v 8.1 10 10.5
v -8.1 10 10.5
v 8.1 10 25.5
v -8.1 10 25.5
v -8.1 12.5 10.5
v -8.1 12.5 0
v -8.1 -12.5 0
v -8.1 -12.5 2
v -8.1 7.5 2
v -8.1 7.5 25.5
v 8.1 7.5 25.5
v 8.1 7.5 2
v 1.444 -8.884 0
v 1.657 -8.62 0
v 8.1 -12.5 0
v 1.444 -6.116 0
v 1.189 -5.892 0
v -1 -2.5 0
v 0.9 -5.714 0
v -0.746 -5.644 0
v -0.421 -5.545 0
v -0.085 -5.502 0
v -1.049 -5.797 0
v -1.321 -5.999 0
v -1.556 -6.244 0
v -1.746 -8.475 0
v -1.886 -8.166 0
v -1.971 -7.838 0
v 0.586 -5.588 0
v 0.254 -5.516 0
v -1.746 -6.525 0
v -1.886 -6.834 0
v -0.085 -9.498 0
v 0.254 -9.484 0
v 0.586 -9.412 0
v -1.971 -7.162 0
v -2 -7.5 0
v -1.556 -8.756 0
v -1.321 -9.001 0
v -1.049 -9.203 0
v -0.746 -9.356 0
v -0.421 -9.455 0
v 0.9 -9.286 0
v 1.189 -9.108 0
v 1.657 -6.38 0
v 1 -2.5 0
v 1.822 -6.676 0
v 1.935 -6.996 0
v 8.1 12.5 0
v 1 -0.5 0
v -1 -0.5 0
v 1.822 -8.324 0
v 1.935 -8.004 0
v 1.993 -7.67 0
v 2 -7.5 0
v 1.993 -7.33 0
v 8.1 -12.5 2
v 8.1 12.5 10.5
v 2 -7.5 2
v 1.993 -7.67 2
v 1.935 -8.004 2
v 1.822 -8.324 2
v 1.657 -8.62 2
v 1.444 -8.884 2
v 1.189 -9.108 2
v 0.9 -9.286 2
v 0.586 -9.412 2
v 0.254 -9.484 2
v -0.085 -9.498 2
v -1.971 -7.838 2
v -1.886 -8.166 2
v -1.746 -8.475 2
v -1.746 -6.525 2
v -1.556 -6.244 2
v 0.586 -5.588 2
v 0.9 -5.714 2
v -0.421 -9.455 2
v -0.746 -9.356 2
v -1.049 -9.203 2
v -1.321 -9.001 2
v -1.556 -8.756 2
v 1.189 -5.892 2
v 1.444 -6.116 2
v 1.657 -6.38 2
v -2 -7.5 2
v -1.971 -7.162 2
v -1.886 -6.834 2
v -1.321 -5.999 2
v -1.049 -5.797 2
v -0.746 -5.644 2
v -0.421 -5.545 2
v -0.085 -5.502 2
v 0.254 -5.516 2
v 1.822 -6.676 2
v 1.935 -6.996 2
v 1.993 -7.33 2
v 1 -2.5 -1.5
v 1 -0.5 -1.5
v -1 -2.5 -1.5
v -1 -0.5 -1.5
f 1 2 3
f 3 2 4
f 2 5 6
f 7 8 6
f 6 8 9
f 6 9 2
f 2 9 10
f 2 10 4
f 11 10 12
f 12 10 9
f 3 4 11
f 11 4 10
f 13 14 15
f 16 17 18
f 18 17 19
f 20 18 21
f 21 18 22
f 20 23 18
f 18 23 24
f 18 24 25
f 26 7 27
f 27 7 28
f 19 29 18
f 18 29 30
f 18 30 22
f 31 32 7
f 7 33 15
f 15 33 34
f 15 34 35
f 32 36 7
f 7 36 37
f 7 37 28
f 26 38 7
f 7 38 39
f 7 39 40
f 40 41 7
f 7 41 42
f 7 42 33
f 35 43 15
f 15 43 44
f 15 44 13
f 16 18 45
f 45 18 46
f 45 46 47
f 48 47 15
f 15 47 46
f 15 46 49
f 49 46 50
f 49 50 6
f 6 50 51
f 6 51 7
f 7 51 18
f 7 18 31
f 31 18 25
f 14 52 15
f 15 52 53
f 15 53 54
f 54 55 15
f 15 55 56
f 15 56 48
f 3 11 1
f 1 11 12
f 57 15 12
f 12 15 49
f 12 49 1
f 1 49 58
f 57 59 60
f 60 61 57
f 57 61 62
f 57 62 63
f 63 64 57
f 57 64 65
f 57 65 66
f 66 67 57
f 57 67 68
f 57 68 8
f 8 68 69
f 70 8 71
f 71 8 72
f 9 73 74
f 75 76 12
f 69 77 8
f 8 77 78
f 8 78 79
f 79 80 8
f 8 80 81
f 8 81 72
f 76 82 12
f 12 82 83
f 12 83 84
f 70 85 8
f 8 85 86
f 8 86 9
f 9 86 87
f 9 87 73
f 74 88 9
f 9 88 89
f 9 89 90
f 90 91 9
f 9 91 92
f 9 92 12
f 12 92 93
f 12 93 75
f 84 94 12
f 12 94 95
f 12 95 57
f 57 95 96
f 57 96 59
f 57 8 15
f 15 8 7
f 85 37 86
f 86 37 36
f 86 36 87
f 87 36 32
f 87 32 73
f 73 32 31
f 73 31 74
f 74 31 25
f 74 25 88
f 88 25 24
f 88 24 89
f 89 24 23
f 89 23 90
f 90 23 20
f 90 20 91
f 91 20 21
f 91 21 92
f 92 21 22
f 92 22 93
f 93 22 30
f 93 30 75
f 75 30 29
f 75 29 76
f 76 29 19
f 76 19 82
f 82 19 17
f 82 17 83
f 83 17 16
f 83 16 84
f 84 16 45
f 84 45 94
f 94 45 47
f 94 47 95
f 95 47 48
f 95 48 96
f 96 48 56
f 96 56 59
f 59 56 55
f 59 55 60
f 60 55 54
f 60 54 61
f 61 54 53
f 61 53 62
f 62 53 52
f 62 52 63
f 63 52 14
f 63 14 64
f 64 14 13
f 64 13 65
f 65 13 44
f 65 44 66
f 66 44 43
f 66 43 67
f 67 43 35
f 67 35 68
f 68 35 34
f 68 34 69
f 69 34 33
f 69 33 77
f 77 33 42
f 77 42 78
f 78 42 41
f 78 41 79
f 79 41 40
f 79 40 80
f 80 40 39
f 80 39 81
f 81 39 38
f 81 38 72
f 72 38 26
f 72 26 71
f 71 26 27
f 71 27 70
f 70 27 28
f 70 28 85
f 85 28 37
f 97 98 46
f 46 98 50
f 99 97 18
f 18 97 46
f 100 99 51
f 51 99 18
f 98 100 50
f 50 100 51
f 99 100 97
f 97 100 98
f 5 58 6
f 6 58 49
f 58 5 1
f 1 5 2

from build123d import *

# Parameters (mm, degrees)
SKETCH1_W            = 16.2
SKETCH1_H            = 16
SKETCH1_R            = 2
BOSS_EXTRUDE3_DEPTH  = 2
SKETCH1_3_W          = 3
SKETCH1_3_H          = 2.5
BOSS_EXTRUDE4_DEPTH  = 25.5
SKETCH1_4_W          = 2
SKETCH1_4_H          = 2
BOSS_EXTRUDE5_DEPTH  = 1.5
SKETCH1_8_W          = 13.2
SKETCH1_8_H          = 2.5
BOSS_EXTRUDE6_DEPTH  = 2
SKETCH1_9_W          = 13.2
SKETCH1_9_H          = 4
SKETCH1_9_W_2        = 3
BOSS_EXTRUDE7_DEPTH  = 2
SKETCH1_11_W         = 3
SKETCH1_11_H         = 2.5
SKETCH1_11_W_2       = 13.2
BOSS_EXTRUDE9_DEPTH  = 10.5
SKETCH1_12_W         = 13.2
SKETCH1_12_H         = 2.5
BOSS_EXTRUDE10_DEPTH = 25.5


with BuildPart() as part:
    # Sketch1 → Boss-Extrude3 (new body)
    with BuildSketch(Plane.XY):
        with Locations((0, -4.5)):
            Rectangle(SKETCH1_W, SKETCH1_H)
        with Locations((0, -7.5)):
            Circle(SKETCH1_R, mode=Mode.SUBTRACT)
    extrude(amount=BOSS_EXTRUDE3_DEPTH)

    # Sketch1<4> → Boss-Extrude5 (add)
    with BuildSketch(Plane.XY):
        with Locations((0, -1.5)):
            Rectangle(SKETCH1_4_W, SKETCH1_4_H)
    extrude(amount=-BOSS_EXTRUDE5_DEPTH)



with BuildPart() as body_2:
    # Sketch1<3> → Boss-Extrude4 (new body)
    with BuildSketch(Plane.XY):
        with Locations((-6.6, 8.75)):
            Rectangle(SKETCH1_3_W, SKETCH1_3_H)
    extrude(amount=BOSS_EXTRUDE4_DEPTH)


with BuildPart() as body_3:
    # Sketch1<8> → Boss-Extrude6 (new body)
    with BuildSketch(Plane.XY):
        with Locations((1.5, 8.75)):
            Rectangle(SKETCH1_8_W, SKETCH1_8_H)
    extrude(amount=BOSS_EXTRUDE6_DEPTH)


with BuildPart() as part_1:
    add(part.part)

    add(body_2.part)  # Boss-Extrude7 merges body 2

    add(body_3.part)  # Boss-Extrude7 merges body 3
    # Sketch1<9> → Boss-Extrude7 (add)
    with BuildSketch(Plane.XY):
        with Locations((1.5, 5.5)):
            Rectangle(SKETCH1_9_W, SKETCH1_9_H)
        with Locations((-6.6, 5.5)):
            Rectangle(SKETCH1_9_W_2, SKETCH1_9_H)
    extrude(amount=BOSS_EXTRUDE7_DEPTH)

    # Sketch1<11> → Boss-Extrude9 (add)
    with BuildSketch(Plane.XY):
        with Locations((-6.6, 11.25)):
            Rectangle(SKETCH1_11_W, SKETCH1_11_H)
        with Locations((1.5, 11.25)):
            Rectangle(SKETCH1_11_W_2, SKETCH1_11_H)
    extrude(amount=BOSS_EXTRUDE9_DEPTH)

    # Sketch1<12> → Boss-Extrude10 (add)
    with BuildSketch(Plane.XY):
        with Locations((1.5, 8.75)):
            Rectangle(SKETCH1_12_W, SKETCH1_12_H)
    extrude(amount=BOSS_EXTRUDE10_DEPTH)


solid = part_1.part
